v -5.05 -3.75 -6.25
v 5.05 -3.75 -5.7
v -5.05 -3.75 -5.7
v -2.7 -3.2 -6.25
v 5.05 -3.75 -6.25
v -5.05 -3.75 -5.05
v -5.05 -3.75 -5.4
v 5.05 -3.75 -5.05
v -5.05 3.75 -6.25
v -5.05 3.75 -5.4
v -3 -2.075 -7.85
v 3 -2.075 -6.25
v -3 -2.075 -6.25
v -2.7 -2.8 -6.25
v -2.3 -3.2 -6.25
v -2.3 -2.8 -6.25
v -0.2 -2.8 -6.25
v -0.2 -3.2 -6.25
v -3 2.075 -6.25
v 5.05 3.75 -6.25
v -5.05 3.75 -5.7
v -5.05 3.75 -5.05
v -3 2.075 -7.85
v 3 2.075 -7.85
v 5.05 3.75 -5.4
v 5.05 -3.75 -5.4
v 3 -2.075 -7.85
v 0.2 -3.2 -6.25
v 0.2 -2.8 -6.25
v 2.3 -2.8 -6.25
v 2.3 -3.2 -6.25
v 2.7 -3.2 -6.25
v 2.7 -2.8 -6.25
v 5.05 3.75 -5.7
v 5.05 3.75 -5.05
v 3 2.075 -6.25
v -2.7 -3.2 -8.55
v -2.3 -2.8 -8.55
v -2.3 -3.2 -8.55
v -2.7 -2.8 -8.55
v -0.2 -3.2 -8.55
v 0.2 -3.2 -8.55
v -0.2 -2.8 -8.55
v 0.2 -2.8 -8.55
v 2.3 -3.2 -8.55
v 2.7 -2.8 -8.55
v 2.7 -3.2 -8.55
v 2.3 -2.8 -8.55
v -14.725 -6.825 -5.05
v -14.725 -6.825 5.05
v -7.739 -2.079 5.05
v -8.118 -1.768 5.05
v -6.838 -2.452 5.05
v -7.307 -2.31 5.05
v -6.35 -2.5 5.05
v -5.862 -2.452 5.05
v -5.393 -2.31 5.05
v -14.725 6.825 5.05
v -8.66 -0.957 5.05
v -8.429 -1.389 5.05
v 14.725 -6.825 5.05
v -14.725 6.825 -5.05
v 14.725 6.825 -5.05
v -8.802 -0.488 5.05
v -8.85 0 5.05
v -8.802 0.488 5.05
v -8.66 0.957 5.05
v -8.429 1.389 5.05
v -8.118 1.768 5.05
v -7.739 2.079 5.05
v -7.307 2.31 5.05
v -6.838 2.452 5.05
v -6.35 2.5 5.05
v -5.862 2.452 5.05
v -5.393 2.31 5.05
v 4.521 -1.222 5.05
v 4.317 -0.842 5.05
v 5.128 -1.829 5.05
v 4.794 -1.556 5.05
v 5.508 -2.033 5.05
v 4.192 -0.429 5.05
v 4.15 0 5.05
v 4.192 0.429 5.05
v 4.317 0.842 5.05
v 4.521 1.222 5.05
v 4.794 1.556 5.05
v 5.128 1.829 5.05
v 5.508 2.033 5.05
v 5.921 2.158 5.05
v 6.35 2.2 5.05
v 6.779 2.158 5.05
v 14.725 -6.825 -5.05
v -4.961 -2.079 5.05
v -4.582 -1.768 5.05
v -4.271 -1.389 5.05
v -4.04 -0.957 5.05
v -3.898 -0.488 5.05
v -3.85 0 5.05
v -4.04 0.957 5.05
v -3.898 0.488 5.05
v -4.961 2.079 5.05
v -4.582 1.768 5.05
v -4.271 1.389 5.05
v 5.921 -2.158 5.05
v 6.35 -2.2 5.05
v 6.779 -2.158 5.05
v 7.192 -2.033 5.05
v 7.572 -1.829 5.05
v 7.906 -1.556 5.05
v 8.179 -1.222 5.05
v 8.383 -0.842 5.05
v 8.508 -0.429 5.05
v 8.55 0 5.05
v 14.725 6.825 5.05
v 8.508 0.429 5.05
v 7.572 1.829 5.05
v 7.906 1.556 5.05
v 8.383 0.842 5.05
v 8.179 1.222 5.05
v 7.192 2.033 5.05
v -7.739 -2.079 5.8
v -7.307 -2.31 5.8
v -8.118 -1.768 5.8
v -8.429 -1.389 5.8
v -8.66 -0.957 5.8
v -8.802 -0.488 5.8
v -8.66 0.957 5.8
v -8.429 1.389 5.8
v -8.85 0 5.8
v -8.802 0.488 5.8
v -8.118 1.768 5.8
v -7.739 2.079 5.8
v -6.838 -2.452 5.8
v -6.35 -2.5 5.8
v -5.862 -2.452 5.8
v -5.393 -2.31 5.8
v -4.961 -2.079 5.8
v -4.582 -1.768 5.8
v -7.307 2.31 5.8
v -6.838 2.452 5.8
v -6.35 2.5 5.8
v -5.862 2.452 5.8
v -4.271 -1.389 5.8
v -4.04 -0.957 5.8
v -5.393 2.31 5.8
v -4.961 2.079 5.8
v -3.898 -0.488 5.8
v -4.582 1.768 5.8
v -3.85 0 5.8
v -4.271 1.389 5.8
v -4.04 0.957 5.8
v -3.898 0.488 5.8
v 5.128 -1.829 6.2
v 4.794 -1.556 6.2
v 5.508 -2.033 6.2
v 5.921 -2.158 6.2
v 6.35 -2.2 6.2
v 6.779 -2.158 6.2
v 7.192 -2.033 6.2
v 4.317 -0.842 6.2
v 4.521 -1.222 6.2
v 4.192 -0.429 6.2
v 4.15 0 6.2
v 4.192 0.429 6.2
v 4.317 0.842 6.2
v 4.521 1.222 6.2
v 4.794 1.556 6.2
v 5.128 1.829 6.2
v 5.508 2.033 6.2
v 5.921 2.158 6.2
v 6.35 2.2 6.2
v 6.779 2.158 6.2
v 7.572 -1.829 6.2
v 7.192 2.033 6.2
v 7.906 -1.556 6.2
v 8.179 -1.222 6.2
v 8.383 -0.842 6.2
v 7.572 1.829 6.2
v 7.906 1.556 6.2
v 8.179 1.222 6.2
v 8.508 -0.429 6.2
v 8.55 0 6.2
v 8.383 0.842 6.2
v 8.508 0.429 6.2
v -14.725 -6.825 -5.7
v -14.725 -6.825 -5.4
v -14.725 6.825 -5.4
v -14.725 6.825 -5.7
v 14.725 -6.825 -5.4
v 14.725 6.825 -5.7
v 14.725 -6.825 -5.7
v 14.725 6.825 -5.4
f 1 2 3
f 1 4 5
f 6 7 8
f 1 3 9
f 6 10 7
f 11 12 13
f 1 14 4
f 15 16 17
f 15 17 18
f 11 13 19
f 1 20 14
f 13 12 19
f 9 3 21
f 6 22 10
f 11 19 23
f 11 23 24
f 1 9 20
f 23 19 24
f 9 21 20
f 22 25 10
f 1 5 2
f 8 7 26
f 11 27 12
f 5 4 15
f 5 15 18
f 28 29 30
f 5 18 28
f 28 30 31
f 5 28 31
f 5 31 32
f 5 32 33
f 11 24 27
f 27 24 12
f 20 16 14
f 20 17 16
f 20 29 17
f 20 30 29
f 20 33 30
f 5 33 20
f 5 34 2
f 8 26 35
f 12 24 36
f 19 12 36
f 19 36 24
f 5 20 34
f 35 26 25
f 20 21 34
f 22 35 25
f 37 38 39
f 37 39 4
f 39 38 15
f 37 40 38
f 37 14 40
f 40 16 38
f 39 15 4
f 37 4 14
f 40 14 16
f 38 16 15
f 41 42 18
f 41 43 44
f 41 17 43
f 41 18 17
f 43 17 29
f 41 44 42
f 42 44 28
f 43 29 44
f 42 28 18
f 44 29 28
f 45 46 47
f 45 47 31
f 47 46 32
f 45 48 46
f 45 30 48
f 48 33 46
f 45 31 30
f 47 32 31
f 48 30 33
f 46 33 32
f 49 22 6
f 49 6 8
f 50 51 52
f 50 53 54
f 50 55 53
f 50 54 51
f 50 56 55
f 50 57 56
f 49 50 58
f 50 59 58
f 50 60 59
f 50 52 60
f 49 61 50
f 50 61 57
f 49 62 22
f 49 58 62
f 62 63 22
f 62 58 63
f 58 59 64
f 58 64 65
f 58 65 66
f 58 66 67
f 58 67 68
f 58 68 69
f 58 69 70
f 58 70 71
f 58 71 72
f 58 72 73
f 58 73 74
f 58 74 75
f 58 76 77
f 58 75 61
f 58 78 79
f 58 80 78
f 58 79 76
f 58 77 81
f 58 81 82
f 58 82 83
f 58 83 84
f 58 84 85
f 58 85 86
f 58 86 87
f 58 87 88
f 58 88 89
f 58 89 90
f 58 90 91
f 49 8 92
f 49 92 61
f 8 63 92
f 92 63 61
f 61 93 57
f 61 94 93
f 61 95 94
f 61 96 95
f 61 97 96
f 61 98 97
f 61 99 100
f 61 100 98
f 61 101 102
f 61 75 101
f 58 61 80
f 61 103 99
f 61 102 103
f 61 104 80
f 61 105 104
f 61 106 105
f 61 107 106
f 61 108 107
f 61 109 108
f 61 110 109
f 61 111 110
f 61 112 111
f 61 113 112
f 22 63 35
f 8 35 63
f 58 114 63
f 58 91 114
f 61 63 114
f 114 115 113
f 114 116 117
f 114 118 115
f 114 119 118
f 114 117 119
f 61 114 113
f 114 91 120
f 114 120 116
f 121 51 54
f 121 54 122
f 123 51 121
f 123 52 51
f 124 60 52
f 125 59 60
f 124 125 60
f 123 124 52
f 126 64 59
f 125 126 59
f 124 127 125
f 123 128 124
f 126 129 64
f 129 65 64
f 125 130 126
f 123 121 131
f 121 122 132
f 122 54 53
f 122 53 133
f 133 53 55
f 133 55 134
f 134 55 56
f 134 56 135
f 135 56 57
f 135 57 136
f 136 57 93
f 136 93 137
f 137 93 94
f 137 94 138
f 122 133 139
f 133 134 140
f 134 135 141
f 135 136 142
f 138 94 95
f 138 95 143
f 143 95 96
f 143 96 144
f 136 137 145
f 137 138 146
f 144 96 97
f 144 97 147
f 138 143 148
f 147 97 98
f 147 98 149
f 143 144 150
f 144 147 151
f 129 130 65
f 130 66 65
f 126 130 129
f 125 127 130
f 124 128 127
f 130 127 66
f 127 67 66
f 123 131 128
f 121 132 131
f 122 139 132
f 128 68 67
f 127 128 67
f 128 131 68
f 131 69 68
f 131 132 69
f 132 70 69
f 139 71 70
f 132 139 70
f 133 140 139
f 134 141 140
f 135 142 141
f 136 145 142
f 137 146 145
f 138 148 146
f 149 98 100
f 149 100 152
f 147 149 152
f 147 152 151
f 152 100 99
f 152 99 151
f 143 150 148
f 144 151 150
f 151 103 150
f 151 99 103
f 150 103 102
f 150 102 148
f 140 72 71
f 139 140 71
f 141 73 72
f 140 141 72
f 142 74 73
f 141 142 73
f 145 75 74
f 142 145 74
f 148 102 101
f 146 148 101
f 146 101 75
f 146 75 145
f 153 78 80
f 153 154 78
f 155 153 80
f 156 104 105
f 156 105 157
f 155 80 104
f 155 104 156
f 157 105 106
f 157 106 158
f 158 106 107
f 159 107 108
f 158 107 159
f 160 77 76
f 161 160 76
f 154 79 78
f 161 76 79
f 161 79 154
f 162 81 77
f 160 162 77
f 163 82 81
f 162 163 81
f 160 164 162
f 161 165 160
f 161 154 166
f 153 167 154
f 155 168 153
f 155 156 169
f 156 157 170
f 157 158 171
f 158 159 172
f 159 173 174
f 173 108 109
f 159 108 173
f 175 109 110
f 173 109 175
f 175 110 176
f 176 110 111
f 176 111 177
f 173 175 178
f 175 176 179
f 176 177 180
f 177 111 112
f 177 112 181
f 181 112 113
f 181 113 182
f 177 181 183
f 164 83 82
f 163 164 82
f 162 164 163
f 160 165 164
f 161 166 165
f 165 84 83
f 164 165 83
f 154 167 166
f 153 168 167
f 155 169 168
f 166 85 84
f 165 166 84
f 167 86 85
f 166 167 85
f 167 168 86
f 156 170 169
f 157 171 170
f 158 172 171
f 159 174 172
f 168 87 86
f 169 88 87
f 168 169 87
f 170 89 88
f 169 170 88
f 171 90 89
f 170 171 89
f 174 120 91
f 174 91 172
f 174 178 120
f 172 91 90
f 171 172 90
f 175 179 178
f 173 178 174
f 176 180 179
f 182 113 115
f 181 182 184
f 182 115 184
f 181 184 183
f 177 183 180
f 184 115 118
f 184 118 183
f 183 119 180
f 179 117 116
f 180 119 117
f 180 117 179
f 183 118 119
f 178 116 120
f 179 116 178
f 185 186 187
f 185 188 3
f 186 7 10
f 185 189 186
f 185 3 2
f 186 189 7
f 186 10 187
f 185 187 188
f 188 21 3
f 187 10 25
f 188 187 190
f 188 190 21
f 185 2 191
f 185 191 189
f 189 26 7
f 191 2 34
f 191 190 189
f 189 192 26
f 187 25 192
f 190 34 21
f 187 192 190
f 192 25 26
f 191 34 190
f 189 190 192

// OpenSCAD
// Sharp GP2Y0D413K0F Distance Sensor - OpenSCAD Model
// Unit: mm
// Origin: Center of the device, Z-axis points toward the front (opposite to mounting face)

// Main body case
module main_case() {
    // Main rectangular body
    cube([29.45, 13.65, 10.1], center=true);
}

// Light emitter (IR LED) - left side
module light_emitter() {
    translate([-9.7/2 - 1.5, 0, 5.05]) {
        cylinder(r=2.5, h=1.5, center=true, $fn=32);
    }
}

// Light detector - right side
module light_detector() {
    translate([9.7/2 + 1.5, 0, 5.05]) {
        // Main sensor lens
        cylinder(r=2.0, h=1.2, center=true, $fn=32);
    }
}

// Lens case (protruding part)
module lens_case() {
    translate([9.7/2 + 1.5, 0, 5.05]) {
        cylinder(r=2.2, h=2.3, center=true, $fn=32);
    }
}

// Connector - at the bottom
module connector() {
    // Connector body
    translate([0, 0, -5.05 - 1.2/2]) {
        cube([10.1, 7.5, 1.2], center=true);
    }
    // Connector pins area
    translate([0, 0, -5.05 - 1.2 - 0.8]) {
        cube([6.0, 4.15, 1.6], center=true);
    }
}

// PWB (Printed Wiring Board) mounting pads
module pwb() {
    translate([0, 0, -5.05 - 0.5]) {
        cube([29.45, 13.65, 0.3], center=true);
    }
}

// Terminal pins (3 pins)
module terminal_pins() {
    pin_positions = [
        [-2.5, -3.0],
        [0, -3.0],
        [2.5, -3.0]
    ];
    
    for (pos = pin_positions) {
        translate([pos[0], pos[1], -5.05 - 0.5 - 1.5]) {
            cube([0.4, 0.4, 3.0], center=true);
        }
    }
}

// Mounting bracket/tab (left side)
module mounting_tab() {
    translate([-14.725/2 - 2, 0, -5.05 + 0.75]) {
        cube([3.75, 13.65, 1.5], center=true);
    }
}

// Mounting bracket/tab (right side)
module mounting_tab_right() {
    translate([14.725/2 + 2, 0, -5.05 + 0.75]) {
        cube([3.75, 13.65, 1.5], center=true);
    }
}

// Complete assembly
module gp2y0d413k0f() {
    // Main body
    color([0.2, 0.2, 0.2])
    main_case();
    
    // Light emitter
    color([1, 0, 0])
    light_emitter();
    
    // Light detector lens
    color([0.8, 0.8, 1])
    light_detector();
    
    // Lens case
    color([0.3, 0.3, 0.3])
    lens_case();
    
    // Connector
    color([0.4, 0.4, 0.4])
    connector();
    
    // PWB
    color([0.6, 0.4, 0.2])
    pwb();
    
    // Terminal pins
    color([0.8, 0.8, 0.8])
    terminal_pins();
    
    // Mounting tabs
    color([0.3, 0.3, 0.3])
    mounting_tab();
    mounting_tab_right();
}

// Render the sensor
gp2y0d413k0f();

// Optional: Add coordinate system for reference
module coordinate_system() {
    // X axis (red)
    color([1, 0, 0]) translate([0, 0, 0]) cylinder(r=0.2, h=10, center=true, $fn=16);
    // Y axis (green)
    color([0, 1, 0]) rotate([90, 0, 0]) cylinder(r=0.2, h=10, center=true, $fn=16);
    // Z axis (blue)
    color([0, 0, 1]) rotate([0, 90, 0]) cylinder(r=0.2, h=10, center=true, $fn=16);
}

// Uncomment to show coordinate system
// coordinate_system();
